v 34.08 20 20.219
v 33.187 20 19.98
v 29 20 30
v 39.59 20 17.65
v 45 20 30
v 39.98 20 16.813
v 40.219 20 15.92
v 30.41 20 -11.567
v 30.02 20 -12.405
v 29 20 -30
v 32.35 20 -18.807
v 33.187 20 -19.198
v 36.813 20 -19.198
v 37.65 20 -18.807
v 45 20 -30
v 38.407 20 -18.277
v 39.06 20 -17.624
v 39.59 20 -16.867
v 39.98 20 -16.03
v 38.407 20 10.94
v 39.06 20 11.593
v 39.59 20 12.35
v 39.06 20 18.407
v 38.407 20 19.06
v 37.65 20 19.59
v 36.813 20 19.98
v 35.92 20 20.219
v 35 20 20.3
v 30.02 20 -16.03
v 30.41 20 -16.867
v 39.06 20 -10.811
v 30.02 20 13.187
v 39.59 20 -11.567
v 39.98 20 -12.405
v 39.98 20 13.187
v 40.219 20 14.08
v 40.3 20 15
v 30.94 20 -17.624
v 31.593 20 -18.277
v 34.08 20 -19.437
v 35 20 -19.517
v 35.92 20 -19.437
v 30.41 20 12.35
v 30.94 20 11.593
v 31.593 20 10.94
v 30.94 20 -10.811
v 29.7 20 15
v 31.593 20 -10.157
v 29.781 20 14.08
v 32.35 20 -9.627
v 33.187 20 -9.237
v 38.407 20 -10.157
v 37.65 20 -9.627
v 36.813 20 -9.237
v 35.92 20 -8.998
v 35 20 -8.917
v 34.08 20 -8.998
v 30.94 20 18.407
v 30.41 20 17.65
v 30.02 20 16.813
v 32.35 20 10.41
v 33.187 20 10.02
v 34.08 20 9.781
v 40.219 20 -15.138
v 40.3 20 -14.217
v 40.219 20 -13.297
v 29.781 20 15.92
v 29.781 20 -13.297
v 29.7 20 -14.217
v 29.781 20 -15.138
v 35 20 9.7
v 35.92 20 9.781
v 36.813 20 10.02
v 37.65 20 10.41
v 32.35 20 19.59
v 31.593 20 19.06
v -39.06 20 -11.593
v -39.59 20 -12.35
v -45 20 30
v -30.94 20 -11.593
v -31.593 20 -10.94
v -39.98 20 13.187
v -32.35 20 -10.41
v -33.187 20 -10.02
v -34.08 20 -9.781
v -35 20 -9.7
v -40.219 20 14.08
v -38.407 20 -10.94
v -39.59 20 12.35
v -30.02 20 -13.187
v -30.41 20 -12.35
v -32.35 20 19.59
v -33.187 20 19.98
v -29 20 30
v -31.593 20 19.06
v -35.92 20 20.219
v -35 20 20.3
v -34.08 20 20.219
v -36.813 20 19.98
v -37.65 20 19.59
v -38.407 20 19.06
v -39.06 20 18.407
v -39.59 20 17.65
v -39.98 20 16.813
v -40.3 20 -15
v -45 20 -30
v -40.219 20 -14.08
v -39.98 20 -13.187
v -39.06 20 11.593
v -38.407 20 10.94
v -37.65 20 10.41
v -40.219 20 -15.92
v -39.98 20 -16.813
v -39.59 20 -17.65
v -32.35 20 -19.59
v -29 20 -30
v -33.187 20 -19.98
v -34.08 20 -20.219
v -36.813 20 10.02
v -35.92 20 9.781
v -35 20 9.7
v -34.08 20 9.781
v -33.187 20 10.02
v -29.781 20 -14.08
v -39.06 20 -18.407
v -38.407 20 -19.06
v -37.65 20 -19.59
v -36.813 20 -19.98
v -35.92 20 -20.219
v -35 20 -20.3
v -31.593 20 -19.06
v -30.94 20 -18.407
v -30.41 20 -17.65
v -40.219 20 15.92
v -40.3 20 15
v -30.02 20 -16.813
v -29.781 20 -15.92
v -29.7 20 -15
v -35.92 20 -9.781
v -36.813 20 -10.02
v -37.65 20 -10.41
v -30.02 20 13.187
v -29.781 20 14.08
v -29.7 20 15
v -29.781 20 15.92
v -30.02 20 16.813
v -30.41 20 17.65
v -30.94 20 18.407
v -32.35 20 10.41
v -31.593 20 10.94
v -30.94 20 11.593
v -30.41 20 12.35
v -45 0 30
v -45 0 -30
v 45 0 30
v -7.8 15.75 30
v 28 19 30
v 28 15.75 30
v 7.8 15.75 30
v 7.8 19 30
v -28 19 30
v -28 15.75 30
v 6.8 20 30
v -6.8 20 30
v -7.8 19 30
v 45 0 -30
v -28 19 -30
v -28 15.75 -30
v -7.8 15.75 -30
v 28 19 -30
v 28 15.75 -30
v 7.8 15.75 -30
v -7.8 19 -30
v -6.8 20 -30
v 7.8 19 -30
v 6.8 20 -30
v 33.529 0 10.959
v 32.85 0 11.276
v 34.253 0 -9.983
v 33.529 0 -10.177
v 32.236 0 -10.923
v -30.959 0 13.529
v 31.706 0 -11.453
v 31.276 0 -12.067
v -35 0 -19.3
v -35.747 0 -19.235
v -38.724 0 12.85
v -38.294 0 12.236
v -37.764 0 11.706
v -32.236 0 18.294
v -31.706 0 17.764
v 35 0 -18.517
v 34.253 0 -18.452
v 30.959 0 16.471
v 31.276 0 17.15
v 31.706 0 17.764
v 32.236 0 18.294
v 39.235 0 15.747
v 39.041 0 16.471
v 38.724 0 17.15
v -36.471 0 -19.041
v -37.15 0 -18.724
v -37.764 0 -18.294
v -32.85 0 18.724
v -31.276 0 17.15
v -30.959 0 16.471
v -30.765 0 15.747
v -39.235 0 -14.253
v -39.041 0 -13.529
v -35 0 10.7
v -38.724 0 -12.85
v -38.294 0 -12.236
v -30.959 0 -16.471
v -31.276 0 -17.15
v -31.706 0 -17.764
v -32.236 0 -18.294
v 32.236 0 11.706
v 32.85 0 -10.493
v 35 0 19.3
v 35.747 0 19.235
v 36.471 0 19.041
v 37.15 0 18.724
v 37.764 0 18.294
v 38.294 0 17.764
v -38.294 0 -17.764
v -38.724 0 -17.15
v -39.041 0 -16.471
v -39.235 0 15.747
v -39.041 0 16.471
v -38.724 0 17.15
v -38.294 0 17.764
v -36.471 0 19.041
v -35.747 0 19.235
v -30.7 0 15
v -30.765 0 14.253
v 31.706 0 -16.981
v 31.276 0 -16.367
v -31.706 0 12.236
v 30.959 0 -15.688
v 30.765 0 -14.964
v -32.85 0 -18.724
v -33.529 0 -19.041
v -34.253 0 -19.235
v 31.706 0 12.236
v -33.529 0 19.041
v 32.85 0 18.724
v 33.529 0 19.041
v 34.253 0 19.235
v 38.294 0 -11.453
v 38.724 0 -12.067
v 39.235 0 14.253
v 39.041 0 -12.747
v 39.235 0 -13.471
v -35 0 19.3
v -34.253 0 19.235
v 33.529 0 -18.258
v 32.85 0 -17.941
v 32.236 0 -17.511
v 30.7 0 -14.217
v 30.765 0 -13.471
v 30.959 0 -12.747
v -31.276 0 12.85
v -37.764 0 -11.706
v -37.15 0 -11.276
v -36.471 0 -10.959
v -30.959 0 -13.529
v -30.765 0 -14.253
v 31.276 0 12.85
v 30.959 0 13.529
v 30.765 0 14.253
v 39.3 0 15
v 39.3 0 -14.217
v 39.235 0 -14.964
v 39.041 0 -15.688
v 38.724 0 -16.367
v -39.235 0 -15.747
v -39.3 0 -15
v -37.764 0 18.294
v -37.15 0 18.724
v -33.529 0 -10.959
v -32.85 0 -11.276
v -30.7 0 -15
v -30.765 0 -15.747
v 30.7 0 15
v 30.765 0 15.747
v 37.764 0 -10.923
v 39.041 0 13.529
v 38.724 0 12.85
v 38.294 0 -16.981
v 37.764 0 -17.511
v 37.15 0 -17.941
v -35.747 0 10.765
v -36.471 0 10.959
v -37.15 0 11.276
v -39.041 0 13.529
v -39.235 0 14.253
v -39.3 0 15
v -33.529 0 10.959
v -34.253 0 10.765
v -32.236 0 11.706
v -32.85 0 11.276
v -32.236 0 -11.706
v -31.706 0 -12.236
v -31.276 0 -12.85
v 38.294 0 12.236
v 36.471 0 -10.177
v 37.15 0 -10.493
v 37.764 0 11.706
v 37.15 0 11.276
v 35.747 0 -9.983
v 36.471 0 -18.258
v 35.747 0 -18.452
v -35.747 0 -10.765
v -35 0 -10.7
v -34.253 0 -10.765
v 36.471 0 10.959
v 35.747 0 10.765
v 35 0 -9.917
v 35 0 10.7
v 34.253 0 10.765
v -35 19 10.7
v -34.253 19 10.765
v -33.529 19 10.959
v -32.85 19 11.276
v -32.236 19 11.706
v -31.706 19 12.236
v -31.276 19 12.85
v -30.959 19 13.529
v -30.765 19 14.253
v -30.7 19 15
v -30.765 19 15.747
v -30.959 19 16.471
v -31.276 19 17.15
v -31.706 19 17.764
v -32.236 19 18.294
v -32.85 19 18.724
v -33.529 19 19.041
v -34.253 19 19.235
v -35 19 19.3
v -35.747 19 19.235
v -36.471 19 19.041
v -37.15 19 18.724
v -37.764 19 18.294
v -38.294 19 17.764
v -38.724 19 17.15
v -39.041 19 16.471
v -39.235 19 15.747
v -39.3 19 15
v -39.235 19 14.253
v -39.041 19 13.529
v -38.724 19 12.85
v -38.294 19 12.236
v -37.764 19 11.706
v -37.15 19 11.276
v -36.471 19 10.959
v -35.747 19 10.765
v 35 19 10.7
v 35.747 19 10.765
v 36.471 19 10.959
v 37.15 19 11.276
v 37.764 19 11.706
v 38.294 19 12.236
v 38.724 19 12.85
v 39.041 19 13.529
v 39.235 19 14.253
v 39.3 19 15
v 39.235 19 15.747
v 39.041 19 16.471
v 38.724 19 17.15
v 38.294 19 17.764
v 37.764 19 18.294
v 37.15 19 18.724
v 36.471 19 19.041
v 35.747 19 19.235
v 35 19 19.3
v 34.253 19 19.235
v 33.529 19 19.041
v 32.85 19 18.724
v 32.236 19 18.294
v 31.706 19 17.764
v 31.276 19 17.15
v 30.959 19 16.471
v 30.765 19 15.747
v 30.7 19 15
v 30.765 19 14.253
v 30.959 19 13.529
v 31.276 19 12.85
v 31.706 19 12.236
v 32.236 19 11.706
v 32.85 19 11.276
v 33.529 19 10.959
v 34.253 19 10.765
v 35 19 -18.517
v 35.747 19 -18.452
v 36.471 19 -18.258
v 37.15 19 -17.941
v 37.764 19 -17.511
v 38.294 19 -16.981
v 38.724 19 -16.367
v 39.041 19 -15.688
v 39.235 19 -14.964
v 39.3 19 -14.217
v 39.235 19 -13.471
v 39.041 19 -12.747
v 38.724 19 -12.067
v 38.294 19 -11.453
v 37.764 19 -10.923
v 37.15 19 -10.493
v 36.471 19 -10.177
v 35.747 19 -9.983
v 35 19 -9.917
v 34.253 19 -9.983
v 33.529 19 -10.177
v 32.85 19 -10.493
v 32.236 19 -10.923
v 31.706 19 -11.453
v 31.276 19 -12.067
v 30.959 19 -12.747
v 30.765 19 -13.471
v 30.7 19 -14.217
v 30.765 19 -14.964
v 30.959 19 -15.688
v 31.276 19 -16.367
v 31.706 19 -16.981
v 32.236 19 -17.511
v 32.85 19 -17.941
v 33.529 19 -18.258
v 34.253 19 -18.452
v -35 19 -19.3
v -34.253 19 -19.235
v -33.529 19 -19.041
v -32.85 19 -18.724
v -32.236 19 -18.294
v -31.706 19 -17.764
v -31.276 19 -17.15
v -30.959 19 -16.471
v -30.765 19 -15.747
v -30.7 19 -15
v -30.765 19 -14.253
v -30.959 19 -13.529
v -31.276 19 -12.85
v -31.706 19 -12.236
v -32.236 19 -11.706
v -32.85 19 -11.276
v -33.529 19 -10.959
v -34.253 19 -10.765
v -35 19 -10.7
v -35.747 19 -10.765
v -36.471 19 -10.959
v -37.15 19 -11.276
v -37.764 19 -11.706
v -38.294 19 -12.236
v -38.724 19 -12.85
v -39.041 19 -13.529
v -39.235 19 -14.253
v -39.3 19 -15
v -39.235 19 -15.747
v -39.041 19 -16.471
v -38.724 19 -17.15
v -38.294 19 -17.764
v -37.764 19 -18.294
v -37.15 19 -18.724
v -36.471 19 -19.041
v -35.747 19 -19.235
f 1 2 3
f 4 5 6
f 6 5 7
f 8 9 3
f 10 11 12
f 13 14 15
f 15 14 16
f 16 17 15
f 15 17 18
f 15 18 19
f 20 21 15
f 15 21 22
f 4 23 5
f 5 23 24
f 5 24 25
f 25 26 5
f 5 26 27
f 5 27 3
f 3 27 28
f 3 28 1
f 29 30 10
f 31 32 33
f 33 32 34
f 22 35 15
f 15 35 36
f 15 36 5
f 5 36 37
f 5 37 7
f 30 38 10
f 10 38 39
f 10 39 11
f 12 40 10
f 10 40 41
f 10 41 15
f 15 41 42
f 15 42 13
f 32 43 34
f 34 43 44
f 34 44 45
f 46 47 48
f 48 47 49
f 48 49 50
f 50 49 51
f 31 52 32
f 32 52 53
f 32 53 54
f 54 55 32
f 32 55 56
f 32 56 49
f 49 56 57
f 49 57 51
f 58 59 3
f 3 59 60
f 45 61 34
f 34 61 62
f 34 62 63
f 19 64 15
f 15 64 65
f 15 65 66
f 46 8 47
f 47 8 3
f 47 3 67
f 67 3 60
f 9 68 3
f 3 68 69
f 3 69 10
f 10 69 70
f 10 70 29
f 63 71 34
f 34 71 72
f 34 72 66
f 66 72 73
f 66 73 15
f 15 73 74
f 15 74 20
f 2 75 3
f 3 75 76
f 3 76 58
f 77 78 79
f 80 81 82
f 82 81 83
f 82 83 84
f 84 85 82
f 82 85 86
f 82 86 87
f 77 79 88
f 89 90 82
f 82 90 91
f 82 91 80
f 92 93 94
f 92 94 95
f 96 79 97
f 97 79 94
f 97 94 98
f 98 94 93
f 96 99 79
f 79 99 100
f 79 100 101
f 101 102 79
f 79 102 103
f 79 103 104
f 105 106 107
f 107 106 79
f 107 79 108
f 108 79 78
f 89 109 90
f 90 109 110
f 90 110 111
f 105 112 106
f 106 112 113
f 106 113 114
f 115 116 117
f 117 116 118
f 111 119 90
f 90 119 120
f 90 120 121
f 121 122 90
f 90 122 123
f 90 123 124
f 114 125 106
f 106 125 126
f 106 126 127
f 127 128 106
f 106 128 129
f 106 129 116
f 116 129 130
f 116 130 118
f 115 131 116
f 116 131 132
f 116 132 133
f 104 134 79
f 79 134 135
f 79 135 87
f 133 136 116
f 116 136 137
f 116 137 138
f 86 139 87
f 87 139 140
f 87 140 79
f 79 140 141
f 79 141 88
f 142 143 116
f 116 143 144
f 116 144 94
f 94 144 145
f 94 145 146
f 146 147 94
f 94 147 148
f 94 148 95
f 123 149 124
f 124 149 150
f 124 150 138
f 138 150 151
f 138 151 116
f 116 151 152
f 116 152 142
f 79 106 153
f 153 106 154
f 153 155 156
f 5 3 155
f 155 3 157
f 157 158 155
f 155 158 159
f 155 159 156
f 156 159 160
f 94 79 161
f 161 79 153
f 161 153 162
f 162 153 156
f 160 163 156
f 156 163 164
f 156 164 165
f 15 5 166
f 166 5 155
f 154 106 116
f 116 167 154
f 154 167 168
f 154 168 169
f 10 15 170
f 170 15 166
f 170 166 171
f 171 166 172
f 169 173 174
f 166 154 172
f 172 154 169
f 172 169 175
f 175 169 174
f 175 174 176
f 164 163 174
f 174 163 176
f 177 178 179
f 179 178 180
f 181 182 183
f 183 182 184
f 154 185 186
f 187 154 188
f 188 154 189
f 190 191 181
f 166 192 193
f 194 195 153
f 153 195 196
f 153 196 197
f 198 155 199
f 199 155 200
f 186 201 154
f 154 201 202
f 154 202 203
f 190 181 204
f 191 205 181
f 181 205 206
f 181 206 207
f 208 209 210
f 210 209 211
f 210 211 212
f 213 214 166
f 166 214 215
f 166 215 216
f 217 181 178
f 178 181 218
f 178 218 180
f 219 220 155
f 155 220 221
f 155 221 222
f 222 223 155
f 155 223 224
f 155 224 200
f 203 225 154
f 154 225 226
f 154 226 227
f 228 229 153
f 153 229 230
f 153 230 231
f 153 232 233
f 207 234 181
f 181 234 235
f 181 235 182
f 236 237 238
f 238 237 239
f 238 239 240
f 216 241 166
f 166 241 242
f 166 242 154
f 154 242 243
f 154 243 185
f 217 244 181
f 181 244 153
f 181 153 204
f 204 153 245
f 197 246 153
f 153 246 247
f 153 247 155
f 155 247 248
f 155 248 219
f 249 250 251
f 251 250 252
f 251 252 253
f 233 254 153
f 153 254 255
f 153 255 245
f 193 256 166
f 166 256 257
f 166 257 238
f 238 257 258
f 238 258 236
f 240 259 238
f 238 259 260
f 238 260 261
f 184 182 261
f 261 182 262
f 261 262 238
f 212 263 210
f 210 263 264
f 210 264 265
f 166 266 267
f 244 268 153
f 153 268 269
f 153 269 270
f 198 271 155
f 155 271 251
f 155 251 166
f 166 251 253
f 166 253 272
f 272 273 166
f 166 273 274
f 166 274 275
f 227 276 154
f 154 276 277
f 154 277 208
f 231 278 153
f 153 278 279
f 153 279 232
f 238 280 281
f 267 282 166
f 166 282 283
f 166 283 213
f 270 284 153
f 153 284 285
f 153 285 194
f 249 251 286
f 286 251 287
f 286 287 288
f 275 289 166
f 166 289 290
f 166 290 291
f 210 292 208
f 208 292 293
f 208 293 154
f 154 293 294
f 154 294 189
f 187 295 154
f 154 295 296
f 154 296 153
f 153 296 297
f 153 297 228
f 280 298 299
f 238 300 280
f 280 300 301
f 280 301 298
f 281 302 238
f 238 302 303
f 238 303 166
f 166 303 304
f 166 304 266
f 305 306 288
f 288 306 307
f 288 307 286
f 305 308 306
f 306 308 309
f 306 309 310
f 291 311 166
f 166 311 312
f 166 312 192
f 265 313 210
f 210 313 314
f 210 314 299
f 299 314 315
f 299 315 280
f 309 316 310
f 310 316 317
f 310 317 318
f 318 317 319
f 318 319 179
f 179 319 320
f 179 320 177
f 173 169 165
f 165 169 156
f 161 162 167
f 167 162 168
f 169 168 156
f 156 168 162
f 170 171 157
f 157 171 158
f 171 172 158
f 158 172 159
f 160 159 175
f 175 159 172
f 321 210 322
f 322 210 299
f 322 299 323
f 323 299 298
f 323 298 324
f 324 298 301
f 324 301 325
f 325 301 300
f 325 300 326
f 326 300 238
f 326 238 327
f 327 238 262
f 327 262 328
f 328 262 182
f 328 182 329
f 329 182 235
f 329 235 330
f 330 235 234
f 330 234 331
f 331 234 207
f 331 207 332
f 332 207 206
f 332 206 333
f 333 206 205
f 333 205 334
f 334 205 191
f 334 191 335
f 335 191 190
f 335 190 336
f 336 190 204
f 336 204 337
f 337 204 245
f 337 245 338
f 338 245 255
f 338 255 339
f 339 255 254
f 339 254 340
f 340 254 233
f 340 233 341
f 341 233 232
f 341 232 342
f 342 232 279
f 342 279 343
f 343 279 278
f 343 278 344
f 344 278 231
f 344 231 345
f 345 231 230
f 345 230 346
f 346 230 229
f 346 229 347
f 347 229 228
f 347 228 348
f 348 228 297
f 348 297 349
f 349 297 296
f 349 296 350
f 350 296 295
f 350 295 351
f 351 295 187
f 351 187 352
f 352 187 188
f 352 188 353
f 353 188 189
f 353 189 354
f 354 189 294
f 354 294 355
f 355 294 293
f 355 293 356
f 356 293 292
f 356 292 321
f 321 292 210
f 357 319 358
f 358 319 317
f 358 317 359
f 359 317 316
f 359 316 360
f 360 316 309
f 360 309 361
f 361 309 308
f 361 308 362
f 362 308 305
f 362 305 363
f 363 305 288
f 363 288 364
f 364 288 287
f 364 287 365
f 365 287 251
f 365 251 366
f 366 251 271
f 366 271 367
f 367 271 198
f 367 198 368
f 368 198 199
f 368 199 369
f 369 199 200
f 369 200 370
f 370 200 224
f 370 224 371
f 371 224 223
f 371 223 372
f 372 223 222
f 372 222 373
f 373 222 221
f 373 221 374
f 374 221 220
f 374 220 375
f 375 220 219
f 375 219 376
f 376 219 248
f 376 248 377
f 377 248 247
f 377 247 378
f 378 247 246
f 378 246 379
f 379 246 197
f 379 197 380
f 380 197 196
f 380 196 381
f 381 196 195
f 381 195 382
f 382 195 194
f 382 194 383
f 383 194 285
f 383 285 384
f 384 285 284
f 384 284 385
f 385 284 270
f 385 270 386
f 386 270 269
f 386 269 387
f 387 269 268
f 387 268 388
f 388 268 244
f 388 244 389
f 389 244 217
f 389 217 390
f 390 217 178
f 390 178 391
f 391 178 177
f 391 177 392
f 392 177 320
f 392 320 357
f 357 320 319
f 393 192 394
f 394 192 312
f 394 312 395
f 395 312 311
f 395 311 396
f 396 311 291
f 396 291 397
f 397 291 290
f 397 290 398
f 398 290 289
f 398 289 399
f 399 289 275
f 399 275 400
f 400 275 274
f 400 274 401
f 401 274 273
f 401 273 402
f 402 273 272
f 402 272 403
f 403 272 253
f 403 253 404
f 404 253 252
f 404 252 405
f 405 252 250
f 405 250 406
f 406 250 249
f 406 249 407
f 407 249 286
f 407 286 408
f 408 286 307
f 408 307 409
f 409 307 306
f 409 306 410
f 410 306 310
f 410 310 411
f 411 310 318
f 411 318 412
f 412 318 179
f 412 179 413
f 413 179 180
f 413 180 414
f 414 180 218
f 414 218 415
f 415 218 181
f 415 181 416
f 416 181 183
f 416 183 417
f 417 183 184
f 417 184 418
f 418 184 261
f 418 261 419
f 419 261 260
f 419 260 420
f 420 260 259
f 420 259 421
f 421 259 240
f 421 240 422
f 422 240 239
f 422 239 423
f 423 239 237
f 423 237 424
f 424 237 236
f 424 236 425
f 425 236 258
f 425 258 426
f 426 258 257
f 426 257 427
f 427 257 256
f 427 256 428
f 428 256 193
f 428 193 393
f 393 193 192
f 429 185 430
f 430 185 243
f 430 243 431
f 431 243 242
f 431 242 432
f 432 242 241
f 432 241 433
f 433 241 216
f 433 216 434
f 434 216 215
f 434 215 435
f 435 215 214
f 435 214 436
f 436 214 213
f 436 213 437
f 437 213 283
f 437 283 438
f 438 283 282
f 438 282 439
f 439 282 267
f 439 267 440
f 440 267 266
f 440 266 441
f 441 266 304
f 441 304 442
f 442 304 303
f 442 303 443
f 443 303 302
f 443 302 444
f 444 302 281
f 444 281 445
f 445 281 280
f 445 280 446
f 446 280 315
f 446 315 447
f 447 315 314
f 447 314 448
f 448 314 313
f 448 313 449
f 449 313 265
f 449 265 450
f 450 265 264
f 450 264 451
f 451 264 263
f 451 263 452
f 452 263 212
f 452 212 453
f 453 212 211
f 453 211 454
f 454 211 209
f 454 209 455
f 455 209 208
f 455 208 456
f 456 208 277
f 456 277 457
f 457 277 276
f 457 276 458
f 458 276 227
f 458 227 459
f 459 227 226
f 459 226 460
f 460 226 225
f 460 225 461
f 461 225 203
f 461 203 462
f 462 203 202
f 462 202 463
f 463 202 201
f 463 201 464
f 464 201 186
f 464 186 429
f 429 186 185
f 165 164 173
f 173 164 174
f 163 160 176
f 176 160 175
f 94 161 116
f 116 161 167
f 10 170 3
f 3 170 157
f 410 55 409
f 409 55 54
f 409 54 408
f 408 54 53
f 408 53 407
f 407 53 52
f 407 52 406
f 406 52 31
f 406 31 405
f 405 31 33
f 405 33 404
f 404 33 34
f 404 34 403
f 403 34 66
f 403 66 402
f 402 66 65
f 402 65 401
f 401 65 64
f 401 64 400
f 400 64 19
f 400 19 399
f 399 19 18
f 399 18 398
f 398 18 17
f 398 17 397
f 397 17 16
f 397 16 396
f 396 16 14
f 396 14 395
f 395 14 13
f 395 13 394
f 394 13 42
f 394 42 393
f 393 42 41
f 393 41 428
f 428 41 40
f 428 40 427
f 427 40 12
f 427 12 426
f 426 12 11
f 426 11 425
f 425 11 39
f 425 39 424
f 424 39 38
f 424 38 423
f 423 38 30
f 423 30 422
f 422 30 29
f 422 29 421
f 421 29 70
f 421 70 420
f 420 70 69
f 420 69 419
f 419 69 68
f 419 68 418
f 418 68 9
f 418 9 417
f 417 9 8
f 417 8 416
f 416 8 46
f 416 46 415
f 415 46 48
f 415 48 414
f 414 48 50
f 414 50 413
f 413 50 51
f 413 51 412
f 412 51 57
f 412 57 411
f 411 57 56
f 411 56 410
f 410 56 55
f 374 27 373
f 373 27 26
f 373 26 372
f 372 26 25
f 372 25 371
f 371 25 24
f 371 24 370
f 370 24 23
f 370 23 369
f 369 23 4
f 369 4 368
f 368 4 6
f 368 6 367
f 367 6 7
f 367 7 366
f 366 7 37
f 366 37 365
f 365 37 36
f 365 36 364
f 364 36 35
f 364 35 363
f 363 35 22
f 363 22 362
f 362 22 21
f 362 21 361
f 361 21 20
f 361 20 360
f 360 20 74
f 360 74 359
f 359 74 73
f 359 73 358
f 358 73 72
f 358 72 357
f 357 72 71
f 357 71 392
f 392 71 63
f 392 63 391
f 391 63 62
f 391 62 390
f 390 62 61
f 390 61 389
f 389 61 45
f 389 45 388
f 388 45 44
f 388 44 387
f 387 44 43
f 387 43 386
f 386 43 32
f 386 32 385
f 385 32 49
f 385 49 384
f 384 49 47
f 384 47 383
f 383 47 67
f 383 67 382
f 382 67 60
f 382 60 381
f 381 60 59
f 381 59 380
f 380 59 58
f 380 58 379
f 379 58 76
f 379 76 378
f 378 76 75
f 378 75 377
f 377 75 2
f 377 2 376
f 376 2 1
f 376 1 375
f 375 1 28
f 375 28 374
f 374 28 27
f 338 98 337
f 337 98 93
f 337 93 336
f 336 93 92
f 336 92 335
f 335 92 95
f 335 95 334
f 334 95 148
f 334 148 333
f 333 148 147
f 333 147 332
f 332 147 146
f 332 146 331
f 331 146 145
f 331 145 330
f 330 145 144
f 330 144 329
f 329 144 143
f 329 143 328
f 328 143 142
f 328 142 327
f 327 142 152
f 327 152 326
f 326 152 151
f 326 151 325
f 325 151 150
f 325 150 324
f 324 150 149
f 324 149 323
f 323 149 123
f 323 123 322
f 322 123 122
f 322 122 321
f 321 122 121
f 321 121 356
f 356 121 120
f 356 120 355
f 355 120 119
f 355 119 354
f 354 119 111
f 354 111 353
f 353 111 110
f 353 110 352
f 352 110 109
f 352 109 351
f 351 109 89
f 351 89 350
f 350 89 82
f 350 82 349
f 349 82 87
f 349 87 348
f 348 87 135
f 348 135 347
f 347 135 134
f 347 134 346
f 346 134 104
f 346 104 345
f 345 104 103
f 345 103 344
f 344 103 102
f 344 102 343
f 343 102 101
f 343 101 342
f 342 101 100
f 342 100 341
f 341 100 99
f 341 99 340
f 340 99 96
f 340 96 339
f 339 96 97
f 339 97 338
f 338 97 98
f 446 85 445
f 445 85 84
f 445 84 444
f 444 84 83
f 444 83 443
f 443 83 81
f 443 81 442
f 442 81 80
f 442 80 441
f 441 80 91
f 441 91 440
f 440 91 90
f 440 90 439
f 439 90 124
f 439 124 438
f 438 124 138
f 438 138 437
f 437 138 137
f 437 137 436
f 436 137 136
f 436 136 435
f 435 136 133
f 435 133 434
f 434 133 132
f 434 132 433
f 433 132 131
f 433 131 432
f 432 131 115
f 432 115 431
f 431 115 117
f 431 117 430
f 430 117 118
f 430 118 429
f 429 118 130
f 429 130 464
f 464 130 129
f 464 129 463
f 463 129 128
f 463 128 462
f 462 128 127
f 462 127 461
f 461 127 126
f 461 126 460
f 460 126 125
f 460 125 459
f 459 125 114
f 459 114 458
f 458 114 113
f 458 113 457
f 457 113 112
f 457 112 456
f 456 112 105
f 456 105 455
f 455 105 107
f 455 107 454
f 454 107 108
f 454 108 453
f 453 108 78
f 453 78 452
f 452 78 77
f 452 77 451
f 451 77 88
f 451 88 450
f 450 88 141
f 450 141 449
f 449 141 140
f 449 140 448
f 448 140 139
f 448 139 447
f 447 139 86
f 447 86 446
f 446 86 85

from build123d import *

# Parameters (mm, degrees)
SKETCH1_W           = 90
SKETCH1_H           = 60
BOSS_EXTRUDE1_DEPTH = 20
CUT_EXTRUDE1_DEPTH  = 61
SKETCH3_R           = 4.3
CUT_EXTRUDE2_DEPTH  = 21
CHAMFER1_SIZE       = 1
CHAMFER2_SIZE       = 1


with BuildPart() as part:
    # Sketch1 → Boss-Extrude1 (new body)
    with BuildSketch(Plane(origin=(0, 0, 0), x_dir=(1, 0, 0), z_dir=(0, 1, 0))):
        Rectangle(SKETCH1_W, SKETCH1_H)
    extrude(amount=BOSS_EXTRUDE1_DEPTH)

    # Sketch2 → Cut-Extrude1 (cut, through all)
    with BuildSketch(Plane.XY.offset(30)):
        Polygon((28, 24.25), (-28, 24.25), (-28, 15.75), (-7.8, 15.75), (-7.8, 20), (7.8, 20), (7.8, 15.75), (28, 15.75), align=None)
    extrude(amount=-CUT_EXTRUDE1_DEPTH, mode=Mode.SUBTRACT)

    # Sketch3 → Cut-Extrude2 (cut, through all)
    with BuildSketch(Plane.XZ):
        with Locations((-35, 15)):
            Circle(SKETCH3_R)
        with Locations((-35, -15)):
            Circle(SKETCH3_R)
        with Locations((35, -14.217273236)):
            Circle(SKETCH3_R)
        with Locations((35, 15)):
            Circle(SKETCH3_R)
    extrude(amount=-CUT_EXTRUDE2_DEPTH, mode=Mode.SUBTRACT)

    # Chamfer1
    chamfer1_edges = [part.edges().sort_by_distance(p)[0] for p in [
        (28, 20, 0),
        (-28, 20, 0),
        (7.8, 20, 0),
        (-7.8, 20, 0),
    ]]
    chamfer(chamfer1_edges, length=CHAMFER1_SIZE)

    # Chamfer2
    chamfer2_edges = [part.edges().sort_by_distance(p)[0] for p in [
        (-39.3, 20, 15),
        (-39.3, 20, -15),
        (30.7, 20, -14.217273236),
        (30.7, 20, 15),
    ]]
    chamfer(chamfer2_edges, length=CHAMFER2_SIZE)


solid = part.part
